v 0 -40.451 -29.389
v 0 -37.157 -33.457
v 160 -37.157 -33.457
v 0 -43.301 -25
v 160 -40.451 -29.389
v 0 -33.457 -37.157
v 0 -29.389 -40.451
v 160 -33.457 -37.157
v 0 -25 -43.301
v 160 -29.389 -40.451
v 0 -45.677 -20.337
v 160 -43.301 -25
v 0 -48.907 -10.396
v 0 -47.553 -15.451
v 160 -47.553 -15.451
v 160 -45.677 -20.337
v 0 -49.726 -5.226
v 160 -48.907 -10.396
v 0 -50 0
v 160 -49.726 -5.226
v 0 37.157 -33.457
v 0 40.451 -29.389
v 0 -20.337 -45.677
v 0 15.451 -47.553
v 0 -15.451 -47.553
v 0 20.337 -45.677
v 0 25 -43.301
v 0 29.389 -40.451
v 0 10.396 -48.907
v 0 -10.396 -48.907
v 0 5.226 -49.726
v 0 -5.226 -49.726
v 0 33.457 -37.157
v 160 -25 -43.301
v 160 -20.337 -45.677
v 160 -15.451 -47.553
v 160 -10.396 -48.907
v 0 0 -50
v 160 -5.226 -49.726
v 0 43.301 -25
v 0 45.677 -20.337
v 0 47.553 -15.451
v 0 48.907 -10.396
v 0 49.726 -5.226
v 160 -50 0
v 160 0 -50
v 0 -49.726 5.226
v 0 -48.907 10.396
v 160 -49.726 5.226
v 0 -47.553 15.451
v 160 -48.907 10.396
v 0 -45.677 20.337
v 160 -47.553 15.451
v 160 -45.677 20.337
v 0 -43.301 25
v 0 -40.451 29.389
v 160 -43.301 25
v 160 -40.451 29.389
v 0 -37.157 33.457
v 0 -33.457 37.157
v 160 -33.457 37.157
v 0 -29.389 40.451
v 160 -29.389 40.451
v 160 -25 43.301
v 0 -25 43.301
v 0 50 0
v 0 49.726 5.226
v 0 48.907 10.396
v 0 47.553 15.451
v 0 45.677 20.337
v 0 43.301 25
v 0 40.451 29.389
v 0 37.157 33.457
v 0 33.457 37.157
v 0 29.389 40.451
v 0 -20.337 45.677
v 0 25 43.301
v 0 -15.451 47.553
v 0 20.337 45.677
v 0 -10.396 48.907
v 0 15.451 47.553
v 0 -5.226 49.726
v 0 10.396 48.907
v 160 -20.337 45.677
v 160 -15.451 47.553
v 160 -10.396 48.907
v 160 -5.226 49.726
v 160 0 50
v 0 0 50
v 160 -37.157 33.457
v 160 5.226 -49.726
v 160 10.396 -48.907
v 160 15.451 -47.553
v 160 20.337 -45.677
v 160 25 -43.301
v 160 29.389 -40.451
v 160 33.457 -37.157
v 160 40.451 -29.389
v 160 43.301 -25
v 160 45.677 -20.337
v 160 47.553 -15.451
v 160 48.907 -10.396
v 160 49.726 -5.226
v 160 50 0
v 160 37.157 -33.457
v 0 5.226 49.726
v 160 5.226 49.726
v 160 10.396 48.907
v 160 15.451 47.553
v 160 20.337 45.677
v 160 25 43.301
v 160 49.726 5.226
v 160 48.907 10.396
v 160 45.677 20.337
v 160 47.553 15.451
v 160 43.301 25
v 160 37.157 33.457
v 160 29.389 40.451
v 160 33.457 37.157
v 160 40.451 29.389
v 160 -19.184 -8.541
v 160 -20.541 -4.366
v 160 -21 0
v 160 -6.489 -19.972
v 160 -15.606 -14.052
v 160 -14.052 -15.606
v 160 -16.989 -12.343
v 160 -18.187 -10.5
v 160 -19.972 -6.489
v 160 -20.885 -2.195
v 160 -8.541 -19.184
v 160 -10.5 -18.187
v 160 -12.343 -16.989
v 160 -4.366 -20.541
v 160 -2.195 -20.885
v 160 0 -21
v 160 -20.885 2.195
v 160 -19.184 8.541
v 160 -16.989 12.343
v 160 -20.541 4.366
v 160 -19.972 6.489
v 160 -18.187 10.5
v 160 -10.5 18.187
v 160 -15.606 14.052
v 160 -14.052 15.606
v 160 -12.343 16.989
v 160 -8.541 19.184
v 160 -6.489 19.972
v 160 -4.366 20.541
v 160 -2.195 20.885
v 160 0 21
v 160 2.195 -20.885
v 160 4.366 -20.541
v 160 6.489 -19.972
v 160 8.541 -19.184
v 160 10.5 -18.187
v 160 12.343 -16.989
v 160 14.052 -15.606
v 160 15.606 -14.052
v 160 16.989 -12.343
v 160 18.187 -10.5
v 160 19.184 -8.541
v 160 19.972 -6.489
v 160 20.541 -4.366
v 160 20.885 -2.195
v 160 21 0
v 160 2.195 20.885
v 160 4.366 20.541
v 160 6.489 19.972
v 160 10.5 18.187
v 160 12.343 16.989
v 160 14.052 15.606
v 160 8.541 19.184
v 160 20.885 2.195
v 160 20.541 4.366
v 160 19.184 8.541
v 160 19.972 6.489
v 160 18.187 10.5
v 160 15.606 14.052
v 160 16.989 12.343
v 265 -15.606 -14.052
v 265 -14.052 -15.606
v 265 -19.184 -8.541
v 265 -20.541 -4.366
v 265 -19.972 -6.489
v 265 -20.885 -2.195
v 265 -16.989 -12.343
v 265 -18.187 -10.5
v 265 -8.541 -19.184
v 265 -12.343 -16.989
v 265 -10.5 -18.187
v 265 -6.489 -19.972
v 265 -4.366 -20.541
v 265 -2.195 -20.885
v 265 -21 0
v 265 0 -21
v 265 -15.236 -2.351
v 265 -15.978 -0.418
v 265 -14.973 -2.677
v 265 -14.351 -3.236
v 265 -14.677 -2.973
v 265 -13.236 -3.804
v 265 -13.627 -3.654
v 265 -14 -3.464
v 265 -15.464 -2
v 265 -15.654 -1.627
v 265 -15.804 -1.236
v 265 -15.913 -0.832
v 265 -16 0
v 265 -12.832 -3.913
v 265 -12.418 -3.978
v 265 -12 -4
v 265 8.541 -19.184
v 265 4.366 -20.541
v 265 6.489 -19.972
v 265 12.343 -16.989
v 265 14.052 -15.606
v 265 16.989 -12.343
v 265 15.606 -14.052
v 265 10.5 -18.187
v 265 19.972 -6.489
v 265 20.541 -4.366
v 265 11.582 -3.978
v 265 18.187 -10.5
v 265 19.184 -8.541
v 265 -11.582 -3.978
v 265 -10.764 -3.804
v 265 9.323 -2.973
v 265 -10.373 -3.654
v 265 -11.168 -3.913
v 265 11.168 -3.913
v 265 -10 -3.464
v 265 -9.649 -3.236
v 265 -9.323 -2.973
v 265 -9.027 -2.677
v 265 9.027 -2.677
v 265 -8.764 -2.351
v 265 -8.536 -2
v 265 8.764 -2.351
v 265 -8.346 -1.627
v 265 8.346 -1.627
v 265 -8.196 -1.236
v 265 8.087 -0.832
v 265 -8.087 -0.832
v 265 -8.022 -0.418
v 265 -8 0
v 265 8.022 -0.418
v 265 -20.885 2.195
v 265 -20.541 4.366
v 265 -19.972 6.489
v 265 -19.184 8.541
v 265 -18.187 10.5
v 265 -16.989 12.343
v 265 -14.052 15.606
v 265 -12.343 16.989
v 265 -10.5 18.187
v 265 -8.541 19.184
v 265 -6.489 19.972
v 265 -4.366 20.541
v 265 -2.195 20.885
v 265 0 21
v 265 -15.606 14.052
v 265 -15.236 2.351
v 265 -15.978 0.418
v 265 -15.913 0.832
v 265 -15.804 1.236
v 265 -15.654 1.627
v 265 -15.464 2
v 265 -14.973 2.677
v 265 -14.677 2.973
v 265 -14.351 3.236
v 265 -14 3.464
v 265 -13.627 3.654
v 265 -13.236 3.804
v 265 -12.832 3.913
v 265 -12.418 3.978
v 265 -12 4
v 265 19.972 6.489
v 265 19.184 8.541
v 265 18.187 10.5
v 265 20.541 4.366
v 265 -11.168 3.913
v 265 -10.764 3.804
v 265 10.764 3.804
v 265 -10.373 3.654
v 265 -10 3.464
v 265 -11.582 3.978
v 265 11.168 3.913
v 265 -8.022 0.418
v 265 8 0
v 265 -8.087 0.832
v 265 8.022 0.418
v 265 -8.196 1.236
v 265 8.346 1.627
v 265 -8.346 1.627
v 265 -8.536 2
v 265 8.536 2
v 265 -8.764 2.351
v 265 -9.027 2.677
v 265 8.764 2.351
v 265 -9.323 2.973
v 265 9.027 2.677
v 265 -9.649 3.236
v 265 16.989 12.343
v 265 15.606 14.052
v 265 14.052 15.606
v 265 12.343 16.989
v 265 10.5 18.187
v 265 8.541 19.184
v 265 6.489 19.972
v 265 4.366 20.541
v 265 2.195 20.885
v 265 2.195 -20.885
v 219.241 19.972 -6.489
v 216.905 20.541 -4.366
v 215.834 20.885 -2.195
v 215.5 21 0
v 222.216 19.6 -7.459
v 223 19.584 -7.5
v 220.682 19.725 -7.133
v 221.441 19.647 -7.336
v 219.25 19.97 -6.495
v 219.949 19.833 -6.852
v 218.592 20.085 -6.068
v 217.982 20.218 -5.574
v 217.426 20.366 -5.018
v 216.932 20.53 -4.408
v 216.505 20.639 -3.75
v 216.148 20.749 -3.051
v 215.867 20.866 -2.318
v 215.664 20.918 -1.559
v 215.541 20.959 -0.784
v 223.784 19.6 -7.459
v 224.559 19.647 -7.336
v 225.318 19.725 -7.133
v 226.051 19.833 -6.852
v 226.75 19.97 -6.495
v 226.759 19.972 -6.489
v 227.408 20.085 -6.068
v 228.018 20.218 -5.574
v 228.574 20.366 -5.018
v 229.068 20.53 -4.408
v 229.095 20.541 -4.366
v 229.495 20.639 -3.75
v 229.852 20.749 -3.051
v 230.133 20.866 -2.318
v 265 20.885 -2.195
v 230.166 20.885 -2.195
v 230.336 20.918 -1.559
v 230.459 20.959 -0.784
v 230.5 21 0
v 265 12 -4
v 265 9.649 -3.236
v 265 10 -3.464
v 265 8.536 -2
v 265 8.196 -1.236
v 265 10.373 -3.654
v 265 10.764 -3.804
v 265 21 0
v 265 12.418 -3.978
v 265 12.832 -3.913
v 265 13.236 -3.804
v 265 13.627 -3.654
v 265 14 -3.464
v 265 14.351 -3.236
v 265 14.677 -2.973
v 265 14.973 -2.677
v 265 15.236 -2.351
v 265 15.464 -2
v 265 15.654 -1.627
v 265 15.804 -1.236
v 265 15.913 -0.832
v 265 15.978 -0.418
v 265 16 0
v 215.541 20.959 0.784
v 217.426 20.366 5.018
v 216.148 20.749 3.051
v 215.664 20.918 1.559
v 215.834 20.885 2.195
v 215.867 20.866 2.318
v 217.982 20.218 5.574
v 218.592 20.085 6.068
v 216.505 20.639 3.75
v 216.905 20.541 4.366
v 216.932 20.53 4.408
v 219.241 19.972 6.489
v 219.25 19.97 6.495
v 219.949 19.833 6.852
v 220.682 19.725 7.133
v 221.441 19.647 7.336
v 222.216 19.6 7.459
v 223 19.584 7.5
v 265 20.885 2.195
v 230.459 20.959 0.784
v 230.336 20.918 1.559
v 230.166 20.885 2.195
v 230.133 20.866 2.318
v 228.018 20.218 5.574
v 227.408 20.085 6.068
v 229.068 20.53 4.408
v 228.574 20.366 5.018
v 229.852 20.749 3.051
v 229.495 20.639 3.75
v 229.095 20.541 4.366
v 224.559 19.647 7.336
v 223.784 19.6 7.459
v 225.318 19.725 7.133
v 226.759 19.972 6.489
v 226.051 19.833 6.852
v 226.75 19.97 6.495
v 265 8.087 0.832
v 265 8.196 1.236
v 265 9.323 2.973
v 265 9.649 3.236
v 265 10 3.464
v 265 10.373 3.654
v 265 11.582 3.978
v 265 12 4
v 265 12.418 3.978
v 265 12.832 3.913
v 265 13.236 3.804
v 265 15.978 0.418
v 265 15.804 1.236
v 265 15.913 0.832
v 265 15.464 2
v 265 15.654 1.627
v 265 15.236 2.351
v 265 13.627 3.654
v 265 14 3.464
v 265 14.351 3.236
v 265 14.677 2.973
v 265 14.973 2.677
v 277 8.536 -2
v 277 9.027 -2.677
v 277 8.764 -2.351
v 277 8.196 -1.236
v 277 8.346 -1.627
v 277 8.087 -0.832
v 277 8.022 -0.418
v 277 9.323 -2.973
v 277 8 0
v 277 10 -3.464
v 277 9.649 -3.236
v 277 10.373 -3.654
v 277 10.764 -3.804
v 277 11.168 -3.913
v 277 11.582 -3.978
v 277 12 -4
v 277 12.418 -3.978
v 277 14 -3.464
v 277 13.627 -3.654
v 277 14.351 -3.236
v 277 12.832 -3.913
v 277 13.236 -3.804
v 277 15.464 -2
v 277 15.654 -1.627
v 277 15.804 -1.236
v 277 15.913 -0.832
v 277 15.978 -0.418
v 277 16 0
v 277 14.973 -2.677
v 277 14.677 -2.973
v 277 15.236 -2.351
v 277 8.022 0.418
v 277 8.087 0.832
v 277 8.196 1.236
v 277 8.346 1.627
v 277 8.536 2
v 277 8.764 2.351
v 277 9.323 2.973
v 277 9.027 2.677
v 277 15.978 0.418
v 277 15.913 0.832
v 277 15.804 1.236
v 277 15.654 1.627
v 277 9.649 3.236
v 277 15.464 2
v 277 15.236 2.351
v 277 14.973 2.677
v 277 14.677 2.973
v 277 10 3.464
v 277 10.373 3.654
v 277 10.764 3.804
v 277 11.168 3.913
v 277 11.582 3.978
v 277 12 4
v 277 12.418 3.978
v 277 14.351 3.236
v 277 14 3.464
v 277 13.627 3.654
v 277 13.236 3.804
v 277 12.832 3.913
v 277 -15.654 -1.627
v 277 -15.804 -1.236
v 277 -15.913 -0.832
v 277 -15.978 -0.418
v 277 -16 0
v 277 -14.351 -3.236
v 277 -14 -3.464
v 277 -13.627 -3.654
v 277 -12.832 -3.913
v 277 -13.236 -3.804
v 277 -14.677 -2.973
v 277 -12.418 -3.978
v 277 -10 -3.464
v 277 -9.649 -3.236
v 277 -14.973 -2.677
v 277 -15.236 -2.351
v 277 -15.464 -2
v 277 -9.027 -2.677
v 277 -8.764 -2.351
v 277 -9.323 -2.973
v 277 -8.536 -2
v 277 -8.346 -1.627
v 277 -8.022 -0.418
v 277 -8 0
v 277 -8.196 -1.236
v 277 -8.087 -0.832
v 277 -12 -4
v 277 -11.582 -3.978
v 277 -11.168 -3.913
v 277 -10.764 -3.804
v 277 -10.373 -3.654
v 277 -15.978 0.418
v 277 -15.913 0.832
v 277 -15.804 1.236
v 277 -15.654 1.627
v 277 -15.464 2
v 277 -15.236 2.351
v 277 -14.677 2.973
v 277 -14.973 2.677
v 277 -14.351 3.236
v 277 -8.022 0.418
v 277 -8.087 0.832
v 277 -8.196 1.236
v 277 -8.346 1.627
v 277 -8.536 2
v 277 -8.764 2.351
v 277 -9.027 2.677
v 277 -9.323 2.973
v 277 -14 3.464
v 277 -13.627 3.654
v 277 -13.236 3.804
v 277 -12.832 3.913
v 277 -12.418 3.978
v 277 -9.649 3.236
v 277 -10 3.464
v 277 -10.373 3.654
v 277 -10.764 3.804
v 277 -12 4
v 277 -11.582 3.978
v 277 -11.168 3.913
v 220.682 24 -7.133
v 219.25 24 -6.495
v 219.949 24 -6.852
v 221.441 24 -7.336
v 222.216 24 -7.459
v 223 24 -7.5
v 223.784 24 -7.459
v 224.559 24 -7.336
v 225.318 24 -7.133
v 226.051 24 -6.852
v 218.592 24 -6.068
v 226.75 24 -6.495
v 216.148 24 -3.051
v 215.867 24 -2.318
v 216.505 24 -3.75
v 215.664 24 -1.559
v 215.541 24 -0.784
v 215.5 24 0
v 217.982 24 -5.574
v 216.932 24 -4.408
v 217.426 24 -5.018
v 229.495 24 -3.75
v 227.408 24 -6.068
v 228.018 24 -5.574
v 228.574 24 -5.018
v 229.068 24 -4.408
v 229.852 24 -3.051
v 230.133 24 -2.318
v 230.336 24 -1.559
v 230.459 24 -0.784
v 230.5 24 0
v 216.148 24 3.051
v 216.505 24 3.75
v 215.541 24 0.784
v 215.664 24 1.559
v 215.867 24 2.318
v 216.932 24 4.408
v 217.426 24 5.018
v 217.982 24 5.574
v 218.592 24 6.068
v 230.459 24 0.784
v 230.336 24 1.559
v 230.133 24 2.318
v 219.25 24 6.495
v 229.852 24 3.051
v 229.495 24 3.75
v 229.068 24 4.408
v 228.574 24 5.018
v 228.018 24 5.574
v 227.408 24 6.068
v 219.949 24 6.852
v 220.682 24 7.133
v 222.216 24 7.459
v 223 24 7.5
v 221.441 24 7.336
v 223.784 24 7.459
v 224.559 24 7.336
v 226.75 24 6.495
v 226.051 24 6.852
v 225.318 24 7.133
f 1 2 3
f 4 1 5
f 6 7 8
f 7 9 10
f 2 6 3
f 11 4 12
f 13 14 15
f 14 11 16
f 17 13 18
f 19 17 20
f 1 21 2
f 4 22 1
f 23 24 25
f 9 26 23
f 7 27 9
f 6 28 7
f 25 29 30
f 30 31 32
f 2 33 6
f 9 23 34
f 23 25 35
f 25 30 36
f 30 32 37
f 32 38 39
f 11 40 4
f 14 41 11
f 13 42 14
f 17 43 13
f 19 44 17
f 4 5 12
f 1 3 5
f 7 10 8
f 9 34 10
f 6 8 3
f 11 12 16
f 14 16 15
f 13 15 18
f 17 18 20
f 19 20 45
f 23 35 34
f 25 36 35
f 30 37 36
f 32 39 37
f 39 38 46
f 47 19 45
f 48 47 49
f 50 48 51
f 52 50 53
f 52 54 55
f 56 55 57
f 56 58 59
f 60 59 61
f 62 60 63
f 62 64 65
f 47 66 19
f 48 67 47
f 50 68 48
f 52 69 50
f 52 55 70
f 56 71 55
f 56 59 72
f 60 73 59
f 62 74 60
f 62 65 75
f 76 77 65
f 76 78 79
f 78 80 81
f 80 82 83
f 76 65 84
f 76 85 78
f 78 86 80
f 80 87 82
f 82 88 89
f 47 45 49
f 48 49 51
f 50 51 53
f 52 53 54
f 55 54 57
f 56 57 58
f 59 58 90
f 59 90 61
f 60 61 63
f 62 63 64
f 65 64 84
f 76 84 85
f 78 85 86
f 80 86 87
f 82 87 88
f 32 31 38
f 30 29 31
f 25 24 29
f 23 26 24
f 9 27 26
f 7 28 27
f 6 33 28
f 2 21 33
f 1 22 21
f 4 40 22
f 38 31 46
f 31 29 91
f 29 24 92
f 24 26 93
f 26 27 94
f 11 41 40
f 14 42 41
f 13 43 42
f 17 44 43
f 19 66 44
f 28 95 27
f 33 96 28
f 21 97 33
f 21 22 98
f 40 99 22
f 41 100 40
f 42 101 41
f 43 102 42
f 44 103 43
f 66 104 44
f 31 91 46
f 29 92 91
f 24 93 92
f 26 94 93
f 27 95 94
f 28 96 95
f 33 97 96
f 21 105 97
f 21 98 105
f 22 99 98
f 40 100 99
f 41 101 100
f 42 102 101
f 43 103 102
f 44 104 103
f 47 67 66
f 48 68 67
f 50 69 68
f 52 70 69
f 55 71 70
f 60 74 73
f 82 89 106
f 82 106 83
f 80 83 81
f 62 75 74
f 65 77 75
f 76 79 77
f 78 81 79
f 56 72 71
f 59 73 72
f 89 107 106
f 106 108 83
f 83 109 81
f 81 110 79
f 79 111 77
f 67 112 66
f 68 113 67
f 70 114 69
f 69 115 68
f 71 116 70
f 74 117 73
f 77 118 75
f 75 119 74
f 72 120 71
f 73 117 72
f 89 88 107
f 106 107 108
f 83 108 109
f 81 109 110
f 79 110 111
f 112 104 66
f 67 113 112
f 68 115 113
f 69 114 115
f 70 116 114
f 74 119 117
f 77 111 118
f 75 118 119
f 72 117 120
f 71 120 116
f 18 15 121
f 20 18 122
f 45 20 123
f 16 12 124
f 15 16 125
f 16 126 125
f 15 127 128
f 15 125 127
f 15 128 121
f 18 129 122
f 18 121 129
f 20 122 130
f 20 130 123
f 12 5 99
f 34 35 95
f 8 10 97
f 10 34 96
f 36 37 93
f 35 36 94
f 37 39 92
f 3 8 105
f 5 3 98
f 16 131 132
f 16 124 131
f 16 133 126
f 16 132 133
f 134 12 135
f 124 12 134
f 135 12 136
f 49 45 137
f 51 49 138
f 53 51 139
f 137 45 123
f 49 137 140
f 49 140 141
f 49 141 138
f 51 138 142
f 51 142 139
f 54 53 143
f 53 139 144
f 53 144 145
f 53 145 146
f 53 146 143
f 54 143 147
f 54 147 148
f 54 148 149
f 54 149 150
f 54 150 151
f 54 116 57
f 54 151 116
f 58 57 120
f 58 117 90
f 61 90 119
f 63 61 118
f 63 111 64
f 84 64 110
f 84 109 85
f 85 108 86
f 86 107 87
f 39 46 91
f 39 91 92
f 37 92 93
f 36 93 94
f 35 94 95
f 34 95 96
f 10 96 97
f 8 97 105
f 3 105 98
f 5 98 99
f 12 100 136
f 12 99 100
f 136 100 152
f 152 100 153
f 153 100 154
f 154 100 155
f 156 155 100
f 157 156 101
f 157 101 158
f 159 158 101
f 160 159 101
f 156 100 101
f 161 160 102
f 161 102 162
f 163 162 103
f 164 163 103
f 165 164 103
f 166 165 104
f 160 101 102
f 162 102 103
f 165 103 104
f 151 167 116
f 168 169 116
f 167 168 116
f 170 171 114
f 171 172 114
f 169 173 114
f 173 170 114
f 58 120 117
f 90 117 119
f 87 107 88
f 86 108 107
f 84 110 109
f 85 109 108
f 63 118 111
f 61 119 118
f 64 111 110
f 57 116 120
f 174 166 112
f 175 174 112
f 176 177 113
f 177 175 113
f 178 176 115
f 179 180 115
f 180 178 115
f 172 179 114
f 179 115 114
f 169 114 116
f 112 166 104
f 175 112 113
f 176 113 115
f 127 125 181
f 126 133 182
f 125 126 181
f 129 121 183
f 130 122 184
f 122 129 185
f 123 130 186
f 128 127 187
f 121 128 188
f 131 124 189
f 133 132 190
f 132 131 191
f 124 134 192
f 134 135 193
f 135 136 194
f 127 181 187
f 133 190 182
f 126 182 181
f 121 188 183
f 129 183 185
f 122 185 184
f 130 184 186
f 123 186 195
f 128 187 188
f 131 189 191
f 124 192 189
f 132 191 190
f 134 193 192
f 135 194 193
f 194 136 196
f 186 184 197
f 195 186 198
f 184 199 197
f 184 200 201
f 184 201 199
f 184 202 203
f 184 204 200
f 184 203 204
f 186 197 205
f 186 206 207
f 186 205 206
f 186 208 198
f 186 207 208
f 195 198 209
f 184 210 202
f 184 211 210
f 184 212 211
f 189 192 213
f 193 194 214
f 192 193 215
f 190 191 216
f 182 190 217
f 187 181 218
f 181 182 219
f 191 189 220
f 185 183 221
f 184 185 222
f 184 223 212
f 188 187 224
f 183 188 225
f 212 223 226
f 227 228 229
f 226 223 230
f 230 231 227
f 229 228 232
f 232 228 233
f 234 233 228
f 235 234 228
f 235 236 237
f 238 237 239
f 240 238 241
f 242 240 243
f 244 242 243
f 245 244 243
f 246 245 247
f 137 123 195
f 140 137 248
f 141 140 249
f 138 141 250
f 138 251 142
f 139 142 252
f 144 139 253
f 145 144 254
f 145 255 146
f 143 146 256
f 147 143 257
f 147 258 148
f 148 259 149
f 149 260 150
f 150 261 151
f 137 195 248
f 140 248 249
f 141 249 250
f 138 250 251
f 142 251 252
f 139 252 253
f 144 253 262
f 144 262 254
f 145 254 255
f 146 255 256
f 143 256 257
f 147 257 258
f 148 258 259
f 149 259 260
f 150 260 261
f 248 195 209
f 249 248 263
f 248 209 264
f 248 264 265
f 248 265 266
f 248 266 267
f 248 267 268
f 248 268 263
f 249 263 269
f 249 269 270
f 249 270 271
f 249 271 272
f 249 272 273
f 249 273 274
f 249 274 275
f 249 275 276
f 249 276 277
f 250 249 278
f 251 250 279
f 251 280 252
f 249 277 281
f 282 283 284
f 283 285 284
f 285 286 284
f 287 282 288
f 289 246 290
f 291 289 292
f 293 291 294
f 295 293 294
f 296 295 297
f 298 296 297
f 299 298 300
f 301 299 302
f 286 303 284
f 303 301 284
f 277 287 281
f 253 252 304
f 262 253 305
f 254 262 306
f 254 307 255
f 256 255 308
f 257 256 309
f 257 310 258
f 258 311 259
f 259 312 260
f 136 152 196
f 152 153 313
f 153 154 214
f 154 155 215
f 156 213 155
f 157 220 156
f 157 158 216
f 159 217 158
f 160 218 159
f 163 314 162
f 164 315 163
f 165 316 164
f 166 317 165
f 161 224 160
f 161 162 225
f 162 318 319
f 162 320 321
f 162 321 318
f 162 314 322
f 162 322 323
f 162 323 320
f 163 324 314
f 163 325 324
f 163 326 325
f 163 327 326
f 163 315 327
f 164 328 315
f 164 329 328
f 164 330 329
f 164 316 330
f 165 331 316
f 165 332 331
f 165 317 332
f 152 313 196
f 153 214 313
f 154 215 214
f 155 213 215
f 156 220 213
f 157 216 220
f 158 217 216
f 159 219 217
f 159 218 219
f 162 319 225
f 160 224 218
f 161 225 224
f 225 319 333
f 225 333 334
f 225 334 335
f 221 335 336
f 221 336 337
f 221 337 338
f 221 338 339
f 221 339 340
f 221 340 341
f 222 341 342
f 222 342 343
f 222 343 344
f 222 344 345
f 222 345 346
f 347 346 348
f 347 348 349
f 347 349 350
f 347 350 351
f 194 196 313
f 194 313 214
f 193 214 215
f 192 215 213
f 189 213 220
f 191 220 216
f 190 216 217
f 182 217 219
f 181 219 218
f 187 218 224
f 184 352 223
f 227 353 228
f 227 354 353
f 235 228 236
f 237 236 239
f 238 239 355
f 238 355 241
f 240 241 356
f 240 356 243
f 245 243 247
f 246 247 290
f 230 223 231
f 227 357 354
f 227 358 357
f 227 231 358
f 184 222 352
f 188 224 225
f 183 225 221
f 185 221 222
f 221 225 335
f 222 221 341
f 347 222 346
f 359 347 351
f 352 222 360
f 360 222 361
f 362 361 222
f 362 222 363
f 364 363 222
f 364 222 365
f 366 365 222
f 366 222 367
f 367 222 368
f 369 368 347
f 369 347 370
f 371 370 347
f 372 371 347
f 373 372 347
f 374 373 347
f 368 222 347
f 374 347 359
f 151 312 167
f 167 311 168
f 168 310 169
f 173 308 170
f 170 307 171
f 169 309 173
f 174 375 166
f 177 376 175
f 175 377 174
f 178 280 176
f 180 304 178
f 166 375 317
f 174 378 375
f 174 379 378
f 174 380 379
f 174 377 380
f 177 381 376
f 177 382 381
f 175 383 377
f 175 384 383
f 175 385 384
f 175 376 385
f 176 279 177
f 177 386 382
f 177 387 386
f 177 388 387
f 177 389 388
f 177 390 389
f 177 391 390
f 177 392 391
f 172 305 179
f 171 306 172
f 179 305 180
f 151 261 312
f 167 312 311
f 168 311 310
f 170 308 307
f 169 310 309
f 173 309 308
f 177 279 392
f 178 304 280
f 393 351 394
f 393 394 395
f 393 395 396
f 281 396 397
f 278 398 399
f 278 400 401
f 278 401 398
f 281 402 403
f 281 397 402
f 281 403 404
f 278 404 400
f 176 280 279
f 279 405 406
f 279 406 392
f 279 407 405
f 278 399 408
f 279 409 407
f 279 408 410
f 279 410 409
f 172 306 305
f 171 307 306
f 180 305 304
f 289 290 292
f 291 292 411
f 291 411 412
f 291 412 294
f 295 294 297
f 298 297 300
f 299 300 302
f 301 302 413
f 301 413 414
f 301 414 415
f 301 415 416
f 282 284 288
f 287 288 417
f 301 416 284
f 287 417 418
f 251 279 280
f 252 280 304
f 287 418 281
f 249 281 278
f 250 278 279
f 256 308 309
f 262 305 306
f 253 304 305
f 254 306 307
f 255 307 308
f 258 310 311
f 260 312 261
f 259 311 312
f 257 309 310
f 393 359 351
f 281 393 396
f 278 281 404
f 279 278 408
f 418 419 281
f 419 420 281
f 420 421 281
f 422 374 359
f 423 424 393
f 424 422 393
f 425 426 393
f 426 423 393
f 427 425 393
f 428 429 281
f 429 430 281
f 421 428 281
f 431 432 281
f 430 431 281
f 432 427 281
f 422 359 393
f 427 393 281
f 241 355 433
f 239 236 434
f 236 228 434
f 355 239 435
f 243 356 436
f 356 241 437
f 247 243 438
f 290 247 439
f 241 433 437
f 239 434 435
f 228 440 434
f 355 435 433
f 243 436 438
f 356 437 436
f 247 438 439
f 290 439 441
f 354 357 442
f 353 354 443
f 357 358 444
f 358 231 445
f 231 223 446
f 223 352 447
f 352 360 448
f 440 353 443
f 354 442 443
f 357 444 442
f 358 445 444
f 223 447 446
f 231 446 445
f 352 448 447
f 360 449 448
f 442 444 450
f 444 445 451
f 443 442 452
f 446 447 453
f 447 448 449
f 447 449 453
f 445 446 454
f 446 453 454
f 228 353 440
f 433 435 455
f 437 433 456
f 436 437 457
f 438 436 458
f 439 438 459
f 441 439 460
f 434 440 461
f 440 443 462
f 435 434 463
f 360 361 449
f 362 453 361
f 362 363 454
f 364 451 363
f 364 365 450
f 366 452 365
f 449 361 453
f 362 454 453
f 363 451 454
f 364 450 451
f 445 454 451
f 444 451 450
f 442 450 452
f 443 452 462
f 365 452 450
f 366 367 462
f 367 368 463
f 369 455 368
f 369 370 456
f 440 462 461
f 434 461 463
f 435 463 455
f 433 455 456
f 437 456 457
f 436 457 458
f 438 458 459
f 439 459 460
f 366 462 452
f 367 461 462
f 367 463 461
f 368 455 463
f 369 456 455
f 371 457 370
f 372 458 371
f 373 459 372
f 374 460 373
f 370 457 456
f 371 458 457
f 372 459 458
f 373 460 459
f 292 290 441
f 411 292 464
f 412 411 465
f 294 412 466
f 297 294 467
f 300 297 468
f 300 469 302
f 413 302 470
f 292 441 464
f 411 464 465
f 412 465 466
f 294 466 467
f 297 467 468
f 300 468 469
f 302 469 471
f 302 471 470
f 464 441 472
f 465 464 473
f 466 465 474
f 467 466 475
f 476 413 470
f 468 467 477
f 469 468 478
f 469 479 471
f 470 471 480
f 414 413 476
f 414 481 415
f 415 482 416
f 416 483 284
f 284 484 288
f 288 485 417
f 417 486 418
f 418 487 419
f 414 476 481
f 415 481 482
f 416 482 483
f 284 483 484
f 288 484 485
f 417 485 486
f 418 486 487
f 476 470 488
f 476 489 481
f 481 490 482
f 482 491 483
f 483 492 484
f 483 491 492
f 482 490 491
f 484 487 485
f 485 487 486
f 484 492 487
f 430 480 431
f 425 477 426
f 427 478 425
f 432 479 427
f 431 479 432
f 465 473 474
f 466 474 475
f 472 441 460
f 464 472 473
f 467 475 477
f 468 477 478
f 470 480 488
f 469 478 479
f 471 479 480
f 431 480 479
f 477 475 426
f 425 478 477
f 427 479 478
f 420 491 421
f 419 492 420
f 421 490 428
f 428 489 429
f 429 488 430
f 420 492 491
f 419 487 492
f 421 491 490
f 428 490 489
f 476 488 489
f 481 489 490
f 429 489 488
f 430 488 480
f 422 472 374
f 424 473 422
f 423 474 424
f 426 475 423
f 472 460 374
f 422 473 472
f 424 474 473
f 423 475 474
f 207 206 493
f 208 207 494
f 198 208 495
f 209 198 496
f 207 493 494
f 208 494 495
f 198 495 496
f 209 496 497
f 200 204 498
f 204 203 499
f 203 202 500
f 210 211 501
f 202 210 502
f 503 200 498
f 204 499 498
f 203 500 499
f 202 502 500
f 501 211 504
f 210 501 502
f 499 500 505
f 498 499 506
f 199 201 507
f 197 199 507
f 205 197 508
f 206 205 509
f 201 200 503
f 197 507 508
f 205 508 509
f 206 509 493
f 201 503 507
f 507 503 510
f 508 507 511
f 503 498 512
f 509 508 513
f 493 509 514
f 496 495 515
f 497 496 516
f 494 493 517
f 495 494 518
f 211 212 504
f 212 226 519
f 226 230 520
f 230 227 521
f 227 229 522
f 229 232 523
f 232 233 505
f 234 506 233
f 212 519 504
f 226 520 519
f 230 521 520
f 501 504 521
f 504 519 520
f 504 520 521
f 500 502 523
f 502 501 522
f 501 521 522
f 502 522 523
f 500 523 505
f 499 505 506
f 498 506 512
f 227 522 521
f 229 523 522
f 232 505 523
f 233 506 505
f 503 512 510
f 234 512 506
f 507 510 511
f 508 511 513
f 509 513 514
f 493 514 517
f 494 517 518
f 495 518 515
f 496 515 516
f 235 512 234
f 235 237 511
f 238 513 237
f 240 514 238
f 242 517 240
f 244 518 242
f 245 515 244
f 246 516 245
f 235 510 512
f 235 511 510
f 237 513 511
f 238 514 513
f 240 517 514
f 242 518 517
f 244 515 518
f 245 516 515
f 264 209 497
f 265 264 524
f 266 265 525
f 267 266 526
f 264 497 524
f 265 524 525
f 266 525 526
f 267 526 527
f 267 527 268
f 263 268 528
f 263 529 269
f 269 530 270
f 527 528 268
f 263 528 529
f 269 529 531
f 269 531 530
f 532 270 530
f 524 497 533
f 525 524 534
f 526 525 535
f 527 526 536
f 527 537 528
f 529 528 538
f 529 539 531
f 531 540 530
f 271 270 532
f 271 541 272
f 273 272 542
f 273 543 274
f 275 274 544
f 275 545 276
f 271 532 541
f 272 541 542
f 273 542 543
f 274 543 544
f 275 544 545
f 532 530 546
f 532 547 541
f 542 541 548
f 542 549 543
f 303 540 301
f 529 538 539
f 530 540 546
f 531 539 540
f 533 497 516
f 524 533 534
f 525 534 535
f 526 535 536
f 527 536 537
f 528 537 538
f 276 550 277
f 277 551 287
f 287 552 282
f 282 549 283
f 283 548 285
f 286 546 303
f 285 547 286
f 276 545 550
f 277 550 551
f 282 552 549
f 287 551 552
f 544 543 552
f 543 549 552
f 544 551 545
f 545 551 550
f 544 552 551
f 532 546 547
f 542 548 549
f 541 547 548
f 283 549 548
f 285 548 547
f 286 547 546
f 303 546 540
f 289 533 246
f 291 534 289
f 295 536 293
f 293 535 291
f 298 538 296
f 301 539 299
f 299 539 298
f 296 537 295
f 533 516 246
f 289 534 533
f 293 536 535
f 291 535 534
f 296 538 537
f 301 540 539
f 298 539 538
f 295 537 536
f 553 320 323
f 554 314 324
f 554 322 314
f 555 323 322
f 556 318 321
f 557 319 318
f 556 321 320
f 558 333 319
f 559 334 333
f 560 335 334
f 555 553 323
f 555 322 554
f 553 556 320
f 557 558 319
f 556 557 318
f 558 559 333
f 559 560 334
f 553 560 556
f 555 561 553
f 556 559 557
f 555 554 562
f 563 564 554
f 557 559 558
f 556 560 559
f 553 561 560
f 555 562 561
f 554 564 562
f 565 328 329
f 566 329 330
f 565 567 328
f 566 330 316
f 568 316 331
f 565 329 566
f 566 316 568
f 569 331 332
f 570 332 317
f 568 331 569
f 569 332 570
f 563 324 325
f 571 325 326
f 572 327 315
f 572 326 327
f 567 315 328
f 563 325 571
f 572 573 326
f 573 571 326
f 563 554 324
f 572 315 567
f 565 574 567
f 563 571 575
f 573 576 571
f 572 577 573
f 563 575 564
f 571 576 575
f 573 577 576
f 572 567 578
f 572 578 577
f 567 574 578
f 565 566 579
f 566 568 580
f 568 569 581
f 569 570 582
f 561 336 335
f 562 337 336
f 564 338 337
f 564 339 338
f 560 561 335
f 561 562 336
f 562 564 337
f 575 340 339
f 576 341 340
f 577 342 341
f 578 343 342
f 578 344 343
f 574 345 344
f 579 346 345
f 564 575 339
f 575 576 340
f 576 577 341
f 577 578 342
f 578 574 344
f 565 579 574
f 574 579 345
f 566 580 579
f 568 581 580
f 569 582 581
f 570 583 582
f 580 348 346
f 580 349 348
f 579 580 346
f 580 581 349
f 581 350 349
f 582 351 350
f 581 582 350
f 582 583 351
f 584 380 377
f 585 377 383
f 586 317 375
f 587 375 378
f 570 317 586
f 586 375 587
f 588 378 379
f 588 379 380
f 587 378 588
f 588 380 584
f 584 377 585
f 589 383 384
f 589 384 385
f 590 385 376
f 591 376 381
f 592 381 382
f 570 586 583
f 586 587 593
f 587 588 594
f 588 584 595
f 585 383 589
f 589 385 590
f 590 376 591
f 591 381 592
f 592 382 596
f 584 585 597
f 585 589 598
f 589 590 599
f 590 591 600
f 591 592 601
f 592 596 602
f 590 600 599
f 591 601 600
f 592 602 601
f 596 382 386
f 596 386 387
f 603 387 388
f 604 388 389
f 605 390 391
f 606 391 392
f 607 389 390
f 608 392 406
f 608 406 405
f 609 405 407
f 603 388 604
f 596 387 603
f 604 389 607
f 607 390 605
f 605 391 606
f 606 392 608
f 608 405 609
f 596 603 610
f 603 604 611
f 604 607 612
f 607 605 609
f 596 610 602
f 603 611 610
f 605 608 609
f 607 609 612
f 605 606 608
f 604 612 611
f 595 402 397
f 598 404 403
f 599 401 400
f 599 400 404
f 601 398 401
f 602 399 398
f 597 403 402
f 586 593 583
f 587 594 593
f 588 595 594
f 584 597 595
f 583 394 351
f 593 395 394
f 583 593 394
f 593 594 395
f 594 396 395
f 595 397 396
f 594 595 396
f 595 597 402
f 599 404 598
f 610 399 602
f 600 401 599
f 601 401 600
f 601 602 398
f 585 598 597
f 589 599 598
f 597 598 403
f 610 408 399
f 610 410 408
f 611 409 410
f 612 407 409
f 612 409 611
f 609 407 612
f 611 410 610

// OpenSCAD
// file: design_params.scad
/*
 * fika - shared design parameters, the single source of truth.
 *
 * Read by every cad/*.scad (include <design_params.scad>) and re-parsed by
 * scripts/design_params.py for scripts/check_layout.py and
 * tools/energy_budget.py, so a value changed here flips the whole pipeline
 * at once. scripts/check_params.py fails the build if any other .scad
 * shadows a name defined here.
 *
 * Keep every line a plain literal: name = value; (numbers, booleans, flat
 * vectors). No arithmetic - derived values are computed by the consumers.
 *
 * Units: mm, deg C, W, V, A, bar, g unless noted.
 * Coordinates: origin at the center of the base plate top surface.
 * X right, Y toward the back, Z up. Positions are component reference
 * points noted per name.
 */

// frame envelope (outer dimensions, CNC aluminum plates)
frame_w = 310;
frame_d = 320;
frame_h = 400;          // side plate height; sides run z -8..392
frame_plate_t = 8;      // structural plates: sides, base, rear, top
mount_plate_t = 6;      // group mount plate
mount_plate_d = 90;     // group mount plate depth (y extent)
mount_plate_y = 20;     // group mount plate front edge

// boiler (single, dual use, copper shell; position = bottom center)
boiler_od = 102;
boiler_h = 160;
boiler_wall = 2;
boiler_x = -50;
boiler_y = 180;
boiler_z = 150;
boiler_volume_l = 1.0;  // nominal fill, used by the energy budget

// heater and mains
heater_power_w = 1400;
mains_voltage = 230;
mains_breaker_a = 10;
brew_temp_c = 93;
steam_temp_c = 125;
max_temp_c = 135;       // firmware hard cutoff; mechanical cutoff above this

// pump: rotary vane head + mains motor, axis along X at the rear base
// (position = axis center; assembly centered on pump_x)
pump_head_d = 42;
pump_head_l = 105;
motor_d = 100;
motor_l = 160;
pump_x = 0;
pump_y = 255;
pump_z = 55;
opv_bar = 9;            // pump bypass back to reservoir
relief_bar = 12;        // boiler mechanical safety relief valve

// brew group and cup zone (position = group axis at tray center)
group_od = 70;
group_h = 90;
group_x = 0;
group_y = 65;
cup_clearance_h = 95;   // spout height above the tray top
cup_max_d = 90;

// drip tray with load cell scale (tray_z = top of load cell + gap)
tray_w = 200;
tray_d = 130;
tray_h = 30;
tray_y = 15;            // tray front edge
tray_z = 13;
loadcell_l = 55;        // TAL220-class bar load cell
loadcell_w = 12.7;
loadcell_h = 12.7;
scale_capacity_g = 1000;

// water tank (position = front face / bottom)
tank_w = 200;
tank_d = 55;
tank_h = 200;
tank_y = 245;
tank_z = 150;

// plumbing, copper lines (suction from the tank is larger bore)
brew_line_od = 6;
brew_line_wall = 1;
steam_line_od = 6;
suction_line_od = 8;

// fasteners (one bolt size for every frame joint, M5 with clearance)
bolt_hole_d = 5.3;

// layout rules (scripts/check_layout.py)
clearance = 10;         // minimum gap between component envelopes
clearance_wall = 5;     // minimum gap between components and frame plates
// main file
/*
 * fika - rotary pump and motor envelope.
 * Purpose: layout placeholder for the rotary vane pump head on its mains
 *          motor. Axis along +X, origin at the motor rear end face on the
 *          axis. Stubs mark the OPV tee and the head inlet/outlet.
 * Material: brass head, steel motor (both off the shelf)
 * Fabrication: cots
 */

include <design_params.scad>

$fn = 60;

module pump() {
    rotate([0, 90, 0]) {
        color("#555555") cylinder(d = motor_d, h = motor_l);
        color("#b5a642") translate([0, 0, motor_l])
            cylinder(d = pump_head_d, h = pump_head_l);
        // inlet and outlet bosses on the head end face
        color("#b5a642") translate([0, 12, motor_l + pump_head_l])
            cylinder(d = 8, h = 12);
        color("#b5a642") translate([0, -12, motor_l + pump_head_l])
            cylinder(d = 8, h = 12);
    }
    // OPV tee on the head, bypass back to the tank
    color("#b5a642") translate([motor_l + pump_head_l * 0.6, 0, 0])
        rotate([-90, 0, 0]) cylinder(d = 15, h = 24);
}

pump();
